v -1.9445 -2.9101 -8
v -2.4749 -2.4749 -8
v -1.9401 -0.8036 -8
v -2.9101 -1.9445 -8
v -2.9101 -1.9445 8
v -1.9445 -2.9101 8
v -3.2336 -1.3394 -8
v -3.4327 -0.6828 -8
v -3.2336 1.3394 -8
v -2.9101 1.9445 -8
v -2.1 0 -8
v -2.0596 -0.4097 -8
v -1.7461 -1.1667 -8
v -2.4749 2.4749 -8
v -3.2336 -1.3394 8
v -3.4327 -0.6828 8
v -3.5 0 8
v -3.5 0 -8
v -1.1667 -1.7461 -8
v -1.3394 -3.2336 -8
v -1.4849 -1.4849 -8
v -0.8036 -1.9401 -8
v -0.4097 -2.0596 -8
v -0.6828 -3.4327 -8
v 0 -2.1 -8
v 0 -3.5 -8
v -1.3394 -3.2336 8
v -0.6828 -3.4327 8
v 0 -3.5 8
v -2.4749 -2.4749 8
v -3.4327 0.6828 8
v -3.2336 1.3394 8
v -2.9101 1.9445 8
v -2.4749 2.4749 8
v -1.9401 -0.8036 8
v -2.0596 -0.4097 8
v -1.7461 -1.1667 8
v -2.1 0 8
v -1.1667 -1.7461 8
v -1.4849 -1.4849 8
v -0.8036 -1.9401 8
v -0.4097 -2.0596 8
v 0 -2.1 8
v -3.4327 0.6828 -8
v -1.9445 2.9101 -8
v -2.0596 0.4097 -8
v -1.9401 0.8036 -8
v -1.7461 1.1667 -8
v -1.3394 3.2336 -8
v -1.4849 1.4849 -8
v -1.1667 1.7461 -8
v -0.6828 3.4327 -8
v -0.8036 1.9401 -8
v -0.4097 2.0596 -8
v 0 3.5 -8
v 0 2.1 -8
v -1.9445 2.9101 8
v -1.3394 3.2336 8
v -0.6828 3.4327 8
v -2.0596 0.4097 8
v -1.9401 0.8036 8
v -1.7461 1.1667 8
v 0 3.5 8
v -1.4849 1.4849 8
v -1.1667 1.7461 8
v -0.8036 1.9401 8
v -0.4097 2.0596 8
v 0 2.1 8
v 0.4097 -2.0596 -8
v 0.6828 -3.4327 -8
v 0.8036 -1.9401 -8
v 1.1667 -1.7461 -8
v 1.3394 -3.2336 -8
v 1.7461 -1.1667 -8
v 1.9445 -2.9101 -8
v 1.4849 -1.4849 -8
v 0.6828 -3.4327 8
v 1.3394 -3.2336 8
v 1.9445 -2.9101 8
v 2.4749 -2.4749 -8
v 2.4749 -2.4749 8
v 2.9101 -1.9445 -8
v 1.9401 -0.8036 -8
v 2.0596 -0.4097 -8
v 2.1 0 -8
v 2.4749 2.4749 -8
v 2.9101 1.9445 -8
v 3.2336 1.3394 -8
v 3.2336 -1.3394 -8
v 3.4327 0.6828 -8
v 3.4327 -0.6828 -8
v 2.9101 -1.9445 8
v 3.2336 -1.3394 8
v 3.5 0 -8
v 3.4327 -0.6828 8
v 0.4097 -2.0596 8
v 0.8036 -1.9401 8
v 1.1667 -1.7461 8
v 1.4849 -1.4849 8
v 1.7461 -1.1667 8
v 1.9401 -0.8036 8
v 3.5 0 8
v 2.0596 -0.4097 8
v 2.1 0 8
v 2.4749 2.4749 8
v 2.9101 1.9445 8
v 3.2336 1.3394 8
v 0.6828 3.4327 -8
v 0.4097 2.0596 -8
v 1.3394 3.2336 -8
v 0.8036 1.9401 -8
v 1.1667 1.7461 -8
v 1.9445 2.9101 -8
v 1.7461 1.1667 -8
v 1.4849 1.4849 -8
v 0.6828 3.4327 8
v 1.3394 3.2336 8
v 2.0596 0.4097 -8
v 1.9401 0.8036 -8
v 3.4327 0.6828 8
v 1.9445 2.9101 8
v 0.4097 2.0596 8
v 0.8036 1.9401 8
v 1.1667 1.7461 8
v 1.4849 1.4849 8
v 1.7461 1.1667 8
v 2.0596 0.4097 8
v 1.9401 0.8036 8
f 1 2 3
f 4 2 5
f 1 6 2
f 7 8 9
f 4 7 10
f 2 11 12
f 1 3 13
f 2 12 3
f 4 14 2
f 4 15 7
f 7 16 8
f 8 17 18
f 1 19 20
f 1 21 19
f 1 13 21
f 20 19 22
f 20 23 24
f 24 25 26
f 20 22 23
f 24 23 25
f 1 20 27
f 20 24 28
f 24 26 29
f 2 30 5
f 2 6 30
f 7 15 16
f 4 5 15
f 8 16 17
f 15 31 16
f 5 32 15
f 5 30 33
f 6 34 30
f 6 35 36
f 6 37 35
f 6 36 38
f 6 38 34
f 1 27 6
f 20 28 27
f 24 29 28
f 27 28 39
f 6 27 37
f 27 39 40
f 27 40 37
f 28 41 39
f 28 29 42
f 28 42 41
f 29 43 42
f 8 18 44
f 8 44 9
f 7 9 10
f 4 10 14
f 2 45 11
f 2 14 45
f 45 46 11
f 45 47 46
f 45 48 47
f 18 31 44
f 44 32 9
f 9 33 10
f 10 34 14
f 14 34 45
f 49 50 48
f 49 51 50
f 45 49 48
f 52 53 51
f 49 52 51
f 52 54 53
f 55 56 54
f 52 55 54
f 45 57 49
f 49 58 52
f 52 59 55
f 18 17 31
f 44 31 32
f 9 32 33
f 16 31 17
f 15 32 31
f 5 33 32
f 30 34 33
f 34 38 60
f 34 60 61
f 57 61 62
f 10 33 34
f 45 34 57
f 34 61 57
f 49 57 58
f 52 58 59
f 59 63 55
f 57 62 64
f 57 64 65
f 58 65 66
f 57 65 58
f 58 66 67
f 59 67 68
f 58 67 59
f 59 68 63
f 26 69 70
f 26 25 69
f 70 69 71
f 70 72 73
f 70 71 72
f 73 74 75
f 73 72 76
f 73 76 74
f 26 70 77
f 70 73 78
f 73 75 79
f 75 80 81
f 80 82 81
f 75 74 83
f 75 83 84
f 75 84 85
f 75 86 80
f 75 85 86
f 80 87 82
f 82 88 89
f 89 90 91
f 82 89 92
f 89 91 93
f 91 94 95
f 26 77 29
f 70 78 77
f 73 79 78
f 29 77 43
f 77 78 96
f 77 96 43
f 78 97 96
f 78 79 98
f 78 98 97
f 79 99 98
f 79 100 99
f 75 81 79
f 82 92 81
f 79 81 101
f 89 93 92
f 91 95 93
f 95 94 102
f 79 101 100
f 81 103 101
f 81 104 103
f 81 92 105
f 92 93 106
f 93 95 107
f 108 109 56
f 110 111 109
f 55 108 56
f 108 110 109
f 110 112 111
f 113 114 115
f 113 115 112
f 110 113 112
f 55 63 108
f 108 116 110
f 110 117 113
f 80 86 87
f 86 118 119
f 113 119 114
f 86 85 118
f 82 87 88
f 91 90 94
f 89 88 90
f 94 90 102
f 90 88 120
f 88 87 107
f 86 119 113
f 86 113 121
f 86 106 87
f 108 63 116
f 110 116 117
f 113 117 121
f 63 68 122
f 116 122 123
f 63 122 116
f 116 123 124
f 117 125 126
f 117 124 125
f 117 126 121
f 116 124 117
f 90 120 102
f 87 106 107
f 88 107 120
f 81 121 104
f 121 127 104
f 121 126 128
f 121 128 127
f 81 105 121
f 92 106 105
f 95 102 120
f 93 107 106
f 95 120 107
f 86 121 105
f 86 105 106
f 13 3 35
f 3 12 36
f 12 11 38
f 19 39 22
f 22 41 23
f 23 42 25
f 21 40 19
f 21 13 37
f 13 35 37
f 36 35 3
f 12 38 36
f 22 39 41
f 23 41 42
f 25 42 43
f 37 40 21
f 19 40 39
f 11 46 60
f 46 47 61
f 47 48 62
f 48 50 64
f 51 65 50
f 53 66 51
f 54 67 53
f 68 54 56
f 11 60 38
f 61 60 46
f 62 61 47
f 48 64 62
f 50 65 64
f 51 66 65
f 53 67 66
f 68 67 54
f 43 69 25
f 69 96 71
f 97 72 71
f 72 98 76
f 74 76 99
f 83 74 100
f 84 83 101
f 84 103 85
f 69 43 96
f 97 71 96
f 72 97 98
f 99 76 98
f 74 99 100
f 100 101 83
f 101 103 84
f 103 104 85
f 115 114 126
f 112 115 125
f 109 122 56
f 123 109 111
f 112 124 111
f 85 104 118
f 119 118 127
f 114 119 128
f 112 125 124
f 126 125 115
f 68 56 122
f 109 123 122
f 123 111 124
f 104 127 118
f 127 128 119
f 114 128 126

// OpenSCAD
$fn = 32;
difference() {
  cylinder(h=16, d=7, center=true);
  cylinder(h=17, d=4.2, center=true);
}
